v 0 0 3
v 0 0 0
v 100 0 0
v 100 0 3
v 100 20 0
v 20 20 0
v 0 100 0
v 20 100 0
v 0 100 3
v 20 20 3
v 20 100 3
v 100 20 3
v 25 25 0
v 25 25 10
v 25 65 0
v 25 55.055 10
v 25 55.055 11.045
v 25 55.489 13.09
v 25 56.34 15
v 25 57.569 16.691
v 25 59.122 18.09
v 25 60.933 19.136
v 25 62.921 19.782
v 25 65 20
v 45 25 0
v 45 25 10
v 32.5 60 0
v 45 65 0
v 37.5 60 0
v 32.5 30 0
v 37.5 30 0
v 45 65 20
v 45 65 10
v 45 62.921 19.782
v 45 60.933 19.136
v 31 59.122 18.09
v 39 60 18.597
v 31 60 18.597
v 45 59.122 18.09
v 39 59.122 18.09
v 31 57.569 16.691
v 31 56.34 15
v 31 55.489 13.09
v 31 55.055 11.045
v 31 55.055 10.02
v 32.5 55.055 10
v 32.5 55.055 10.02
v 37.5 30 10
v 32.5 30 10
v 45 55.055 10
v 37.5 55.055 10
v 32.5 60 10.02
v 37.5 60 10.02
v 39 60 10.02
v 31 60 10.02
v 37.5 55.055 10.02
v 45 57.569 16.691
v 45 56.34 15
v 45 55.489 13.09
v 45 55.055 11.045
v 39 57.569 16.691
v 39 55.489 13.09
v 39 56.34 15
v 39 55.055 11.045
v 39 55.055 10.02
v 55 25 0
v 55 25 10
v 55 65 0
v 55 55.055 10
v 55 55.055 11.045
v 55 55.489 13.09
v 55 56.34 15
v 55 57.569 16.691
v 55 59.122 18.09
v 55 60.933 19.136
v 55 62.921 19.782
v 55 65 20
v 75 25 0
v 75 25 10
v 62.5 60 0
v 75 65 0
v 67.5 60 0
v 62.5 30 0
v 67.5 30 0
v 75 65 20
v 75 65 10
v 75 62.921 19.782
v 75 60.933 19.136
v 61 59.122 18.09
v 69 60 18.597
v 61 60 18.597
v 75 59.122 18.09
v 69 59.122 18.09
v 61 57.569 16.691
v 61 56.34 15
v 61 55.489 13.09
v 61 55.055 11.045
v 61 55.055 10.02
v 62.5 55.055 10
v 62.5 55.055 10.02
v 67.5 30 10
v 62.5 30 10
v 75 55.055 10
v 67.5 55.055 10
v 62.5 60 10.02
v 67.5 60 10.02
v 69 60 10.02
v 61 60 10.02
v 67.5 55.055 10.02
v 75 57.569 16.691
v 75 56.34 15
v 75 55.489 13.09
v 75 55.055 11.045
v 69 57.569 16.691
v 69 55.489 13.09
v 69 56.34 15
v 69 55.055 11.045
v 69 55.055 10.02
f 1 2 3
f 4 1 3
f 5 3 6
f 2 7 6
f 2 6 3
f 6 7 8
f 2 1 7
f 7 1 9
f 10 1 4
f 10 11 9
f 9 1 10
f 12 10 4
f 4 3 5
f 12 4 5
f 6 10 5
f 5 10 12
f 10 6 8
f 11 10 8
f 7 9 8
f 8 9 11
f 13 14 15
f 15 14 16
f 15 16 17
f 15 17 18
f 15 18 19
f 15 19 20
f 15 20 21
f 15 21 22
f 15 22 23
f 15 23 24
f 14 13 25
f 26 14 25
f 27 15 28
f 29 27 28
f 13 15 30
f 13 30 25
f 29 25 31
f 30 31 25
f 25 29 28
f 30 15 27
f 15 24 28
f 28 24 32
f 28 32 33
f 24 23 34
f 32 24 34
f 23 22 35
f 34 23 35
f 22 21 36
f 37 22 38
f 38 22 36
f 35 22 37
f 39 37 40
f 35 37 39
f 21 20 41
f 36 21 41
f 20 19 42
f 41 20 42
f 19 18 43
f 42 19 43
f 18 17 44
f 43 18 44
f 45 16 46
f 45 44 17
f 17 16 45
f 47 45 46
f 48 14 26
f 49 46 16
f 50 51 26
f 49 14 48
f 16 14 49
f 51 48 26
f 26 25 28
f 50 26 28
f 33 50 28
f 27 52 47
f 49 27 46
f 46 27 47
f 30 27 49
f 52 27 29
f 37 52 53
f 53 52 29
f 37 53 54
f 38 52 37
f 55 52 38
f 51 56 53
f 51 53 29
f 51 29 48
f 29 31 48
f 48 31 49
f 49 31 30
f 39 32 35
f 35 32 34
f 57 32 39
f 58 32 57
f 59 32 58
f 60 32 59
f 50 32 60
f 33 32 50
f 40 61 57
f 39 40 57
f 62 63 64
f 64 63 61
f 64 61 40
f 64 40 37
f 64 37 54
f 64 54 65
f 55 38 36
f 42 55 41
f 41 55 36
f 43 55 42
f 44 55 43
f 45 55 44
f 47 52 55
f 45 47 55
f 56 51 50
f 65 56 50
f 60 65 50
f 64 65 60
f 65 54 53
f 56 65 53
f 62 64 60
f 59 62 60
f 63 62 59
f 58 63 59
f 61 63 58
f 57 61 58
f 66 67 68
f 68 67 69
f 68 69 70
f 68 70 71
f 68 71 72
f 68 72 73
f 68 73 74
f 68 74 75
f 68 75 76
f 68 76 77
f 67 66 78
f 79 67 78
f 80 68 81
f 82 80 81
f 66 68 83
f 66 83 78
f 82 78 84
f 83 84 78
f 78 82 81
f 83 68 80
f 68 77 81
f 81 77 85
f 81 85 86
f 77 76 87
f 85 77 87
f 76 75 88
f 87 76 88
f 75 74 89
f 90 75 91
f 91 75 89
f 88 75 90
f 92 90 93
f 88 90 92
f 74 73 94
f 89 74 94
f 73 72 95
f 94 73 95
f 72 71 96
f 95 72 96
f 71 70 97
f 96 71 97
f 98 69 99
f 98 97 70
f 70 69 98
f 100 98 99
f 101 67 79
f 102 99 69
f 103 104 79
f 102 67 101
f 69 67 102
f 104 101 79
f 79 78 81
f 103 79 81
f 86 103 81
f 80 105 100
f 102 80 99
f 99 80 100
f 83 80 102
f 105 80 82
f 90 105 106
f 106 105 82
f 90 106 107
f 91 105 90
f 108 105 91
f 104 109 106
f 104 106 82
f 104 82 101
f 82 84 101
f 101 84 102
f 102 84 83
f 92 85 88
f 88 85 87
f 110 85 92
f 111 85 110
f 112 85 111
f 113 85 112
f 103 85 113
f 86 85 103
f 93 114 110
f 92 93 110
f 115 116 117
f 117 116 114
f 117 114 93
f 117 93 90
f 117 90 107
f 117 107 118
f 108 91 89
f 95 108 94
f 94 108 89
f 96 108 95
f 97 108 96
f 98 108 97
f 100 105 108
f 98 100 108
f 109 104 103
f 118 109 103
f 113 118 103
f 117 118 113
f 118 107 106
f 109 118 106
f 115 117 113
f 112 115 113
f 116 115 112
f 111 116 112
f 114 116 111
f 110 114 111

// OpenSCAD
l_height = 100;
l_width = 100;
l_bracket_thickness = 3;
l_bracket_arm_width = 20;
holder_height = 20;
holder_width = 40;
holder_channel_width = 5;		// M5 screw
holder_channel_padding = 5;	// padding on left/right of channel

module l_bracket(h, w, t, aw) {
	linear_extrude(height = t, center = false, convexity = 0, twist = 0)
	difference() {
		square([h, w], center = false);
		translate([aw, aw, 0]) square([h - aw, w - aw], center = false);
	} 
}

module pcb_holder(h, w, cw, cp) {
	// base + rail cutout
	difference() {
		union() {
			cube([h, w, 10]);
			intersection() {
				translate([0, w - 10, 10]) cube([h, 10, 10]);
				translate([0, w, 10]) rotate([0, 90, 0]) cylinder(r=10, h=20, center=false);
			}
		}
		// channel
		translate([h / 2 - cw / 2, cp, -0.01]) cube([cw, w - 2 * cp, 20.02]);
		// channel counersink
		translate([h / 2 - cw * 1.6 / 2, cp, 10.02]) cube([cw * 1.6, w - 2 * cp, 20.02]);
	}
}

translate([0, 0, 0]) l_bracket(l_height, l_width, l_bracket_thickness, l_bracket_arm_width);

translate([l_bracket_arm_width + 5, l_bracket_arm_width + 5, 0]) pcb_holder(holder_height, holder_width, holder_channel_width, holder_channel_padding);

translate([l_bracket_arm_width + holder_height + 15, l_bracket_arm_width + 5, 0]) pcb_holder(holder_height, holder_width, holder_channel_width, holder_channel_padding);
